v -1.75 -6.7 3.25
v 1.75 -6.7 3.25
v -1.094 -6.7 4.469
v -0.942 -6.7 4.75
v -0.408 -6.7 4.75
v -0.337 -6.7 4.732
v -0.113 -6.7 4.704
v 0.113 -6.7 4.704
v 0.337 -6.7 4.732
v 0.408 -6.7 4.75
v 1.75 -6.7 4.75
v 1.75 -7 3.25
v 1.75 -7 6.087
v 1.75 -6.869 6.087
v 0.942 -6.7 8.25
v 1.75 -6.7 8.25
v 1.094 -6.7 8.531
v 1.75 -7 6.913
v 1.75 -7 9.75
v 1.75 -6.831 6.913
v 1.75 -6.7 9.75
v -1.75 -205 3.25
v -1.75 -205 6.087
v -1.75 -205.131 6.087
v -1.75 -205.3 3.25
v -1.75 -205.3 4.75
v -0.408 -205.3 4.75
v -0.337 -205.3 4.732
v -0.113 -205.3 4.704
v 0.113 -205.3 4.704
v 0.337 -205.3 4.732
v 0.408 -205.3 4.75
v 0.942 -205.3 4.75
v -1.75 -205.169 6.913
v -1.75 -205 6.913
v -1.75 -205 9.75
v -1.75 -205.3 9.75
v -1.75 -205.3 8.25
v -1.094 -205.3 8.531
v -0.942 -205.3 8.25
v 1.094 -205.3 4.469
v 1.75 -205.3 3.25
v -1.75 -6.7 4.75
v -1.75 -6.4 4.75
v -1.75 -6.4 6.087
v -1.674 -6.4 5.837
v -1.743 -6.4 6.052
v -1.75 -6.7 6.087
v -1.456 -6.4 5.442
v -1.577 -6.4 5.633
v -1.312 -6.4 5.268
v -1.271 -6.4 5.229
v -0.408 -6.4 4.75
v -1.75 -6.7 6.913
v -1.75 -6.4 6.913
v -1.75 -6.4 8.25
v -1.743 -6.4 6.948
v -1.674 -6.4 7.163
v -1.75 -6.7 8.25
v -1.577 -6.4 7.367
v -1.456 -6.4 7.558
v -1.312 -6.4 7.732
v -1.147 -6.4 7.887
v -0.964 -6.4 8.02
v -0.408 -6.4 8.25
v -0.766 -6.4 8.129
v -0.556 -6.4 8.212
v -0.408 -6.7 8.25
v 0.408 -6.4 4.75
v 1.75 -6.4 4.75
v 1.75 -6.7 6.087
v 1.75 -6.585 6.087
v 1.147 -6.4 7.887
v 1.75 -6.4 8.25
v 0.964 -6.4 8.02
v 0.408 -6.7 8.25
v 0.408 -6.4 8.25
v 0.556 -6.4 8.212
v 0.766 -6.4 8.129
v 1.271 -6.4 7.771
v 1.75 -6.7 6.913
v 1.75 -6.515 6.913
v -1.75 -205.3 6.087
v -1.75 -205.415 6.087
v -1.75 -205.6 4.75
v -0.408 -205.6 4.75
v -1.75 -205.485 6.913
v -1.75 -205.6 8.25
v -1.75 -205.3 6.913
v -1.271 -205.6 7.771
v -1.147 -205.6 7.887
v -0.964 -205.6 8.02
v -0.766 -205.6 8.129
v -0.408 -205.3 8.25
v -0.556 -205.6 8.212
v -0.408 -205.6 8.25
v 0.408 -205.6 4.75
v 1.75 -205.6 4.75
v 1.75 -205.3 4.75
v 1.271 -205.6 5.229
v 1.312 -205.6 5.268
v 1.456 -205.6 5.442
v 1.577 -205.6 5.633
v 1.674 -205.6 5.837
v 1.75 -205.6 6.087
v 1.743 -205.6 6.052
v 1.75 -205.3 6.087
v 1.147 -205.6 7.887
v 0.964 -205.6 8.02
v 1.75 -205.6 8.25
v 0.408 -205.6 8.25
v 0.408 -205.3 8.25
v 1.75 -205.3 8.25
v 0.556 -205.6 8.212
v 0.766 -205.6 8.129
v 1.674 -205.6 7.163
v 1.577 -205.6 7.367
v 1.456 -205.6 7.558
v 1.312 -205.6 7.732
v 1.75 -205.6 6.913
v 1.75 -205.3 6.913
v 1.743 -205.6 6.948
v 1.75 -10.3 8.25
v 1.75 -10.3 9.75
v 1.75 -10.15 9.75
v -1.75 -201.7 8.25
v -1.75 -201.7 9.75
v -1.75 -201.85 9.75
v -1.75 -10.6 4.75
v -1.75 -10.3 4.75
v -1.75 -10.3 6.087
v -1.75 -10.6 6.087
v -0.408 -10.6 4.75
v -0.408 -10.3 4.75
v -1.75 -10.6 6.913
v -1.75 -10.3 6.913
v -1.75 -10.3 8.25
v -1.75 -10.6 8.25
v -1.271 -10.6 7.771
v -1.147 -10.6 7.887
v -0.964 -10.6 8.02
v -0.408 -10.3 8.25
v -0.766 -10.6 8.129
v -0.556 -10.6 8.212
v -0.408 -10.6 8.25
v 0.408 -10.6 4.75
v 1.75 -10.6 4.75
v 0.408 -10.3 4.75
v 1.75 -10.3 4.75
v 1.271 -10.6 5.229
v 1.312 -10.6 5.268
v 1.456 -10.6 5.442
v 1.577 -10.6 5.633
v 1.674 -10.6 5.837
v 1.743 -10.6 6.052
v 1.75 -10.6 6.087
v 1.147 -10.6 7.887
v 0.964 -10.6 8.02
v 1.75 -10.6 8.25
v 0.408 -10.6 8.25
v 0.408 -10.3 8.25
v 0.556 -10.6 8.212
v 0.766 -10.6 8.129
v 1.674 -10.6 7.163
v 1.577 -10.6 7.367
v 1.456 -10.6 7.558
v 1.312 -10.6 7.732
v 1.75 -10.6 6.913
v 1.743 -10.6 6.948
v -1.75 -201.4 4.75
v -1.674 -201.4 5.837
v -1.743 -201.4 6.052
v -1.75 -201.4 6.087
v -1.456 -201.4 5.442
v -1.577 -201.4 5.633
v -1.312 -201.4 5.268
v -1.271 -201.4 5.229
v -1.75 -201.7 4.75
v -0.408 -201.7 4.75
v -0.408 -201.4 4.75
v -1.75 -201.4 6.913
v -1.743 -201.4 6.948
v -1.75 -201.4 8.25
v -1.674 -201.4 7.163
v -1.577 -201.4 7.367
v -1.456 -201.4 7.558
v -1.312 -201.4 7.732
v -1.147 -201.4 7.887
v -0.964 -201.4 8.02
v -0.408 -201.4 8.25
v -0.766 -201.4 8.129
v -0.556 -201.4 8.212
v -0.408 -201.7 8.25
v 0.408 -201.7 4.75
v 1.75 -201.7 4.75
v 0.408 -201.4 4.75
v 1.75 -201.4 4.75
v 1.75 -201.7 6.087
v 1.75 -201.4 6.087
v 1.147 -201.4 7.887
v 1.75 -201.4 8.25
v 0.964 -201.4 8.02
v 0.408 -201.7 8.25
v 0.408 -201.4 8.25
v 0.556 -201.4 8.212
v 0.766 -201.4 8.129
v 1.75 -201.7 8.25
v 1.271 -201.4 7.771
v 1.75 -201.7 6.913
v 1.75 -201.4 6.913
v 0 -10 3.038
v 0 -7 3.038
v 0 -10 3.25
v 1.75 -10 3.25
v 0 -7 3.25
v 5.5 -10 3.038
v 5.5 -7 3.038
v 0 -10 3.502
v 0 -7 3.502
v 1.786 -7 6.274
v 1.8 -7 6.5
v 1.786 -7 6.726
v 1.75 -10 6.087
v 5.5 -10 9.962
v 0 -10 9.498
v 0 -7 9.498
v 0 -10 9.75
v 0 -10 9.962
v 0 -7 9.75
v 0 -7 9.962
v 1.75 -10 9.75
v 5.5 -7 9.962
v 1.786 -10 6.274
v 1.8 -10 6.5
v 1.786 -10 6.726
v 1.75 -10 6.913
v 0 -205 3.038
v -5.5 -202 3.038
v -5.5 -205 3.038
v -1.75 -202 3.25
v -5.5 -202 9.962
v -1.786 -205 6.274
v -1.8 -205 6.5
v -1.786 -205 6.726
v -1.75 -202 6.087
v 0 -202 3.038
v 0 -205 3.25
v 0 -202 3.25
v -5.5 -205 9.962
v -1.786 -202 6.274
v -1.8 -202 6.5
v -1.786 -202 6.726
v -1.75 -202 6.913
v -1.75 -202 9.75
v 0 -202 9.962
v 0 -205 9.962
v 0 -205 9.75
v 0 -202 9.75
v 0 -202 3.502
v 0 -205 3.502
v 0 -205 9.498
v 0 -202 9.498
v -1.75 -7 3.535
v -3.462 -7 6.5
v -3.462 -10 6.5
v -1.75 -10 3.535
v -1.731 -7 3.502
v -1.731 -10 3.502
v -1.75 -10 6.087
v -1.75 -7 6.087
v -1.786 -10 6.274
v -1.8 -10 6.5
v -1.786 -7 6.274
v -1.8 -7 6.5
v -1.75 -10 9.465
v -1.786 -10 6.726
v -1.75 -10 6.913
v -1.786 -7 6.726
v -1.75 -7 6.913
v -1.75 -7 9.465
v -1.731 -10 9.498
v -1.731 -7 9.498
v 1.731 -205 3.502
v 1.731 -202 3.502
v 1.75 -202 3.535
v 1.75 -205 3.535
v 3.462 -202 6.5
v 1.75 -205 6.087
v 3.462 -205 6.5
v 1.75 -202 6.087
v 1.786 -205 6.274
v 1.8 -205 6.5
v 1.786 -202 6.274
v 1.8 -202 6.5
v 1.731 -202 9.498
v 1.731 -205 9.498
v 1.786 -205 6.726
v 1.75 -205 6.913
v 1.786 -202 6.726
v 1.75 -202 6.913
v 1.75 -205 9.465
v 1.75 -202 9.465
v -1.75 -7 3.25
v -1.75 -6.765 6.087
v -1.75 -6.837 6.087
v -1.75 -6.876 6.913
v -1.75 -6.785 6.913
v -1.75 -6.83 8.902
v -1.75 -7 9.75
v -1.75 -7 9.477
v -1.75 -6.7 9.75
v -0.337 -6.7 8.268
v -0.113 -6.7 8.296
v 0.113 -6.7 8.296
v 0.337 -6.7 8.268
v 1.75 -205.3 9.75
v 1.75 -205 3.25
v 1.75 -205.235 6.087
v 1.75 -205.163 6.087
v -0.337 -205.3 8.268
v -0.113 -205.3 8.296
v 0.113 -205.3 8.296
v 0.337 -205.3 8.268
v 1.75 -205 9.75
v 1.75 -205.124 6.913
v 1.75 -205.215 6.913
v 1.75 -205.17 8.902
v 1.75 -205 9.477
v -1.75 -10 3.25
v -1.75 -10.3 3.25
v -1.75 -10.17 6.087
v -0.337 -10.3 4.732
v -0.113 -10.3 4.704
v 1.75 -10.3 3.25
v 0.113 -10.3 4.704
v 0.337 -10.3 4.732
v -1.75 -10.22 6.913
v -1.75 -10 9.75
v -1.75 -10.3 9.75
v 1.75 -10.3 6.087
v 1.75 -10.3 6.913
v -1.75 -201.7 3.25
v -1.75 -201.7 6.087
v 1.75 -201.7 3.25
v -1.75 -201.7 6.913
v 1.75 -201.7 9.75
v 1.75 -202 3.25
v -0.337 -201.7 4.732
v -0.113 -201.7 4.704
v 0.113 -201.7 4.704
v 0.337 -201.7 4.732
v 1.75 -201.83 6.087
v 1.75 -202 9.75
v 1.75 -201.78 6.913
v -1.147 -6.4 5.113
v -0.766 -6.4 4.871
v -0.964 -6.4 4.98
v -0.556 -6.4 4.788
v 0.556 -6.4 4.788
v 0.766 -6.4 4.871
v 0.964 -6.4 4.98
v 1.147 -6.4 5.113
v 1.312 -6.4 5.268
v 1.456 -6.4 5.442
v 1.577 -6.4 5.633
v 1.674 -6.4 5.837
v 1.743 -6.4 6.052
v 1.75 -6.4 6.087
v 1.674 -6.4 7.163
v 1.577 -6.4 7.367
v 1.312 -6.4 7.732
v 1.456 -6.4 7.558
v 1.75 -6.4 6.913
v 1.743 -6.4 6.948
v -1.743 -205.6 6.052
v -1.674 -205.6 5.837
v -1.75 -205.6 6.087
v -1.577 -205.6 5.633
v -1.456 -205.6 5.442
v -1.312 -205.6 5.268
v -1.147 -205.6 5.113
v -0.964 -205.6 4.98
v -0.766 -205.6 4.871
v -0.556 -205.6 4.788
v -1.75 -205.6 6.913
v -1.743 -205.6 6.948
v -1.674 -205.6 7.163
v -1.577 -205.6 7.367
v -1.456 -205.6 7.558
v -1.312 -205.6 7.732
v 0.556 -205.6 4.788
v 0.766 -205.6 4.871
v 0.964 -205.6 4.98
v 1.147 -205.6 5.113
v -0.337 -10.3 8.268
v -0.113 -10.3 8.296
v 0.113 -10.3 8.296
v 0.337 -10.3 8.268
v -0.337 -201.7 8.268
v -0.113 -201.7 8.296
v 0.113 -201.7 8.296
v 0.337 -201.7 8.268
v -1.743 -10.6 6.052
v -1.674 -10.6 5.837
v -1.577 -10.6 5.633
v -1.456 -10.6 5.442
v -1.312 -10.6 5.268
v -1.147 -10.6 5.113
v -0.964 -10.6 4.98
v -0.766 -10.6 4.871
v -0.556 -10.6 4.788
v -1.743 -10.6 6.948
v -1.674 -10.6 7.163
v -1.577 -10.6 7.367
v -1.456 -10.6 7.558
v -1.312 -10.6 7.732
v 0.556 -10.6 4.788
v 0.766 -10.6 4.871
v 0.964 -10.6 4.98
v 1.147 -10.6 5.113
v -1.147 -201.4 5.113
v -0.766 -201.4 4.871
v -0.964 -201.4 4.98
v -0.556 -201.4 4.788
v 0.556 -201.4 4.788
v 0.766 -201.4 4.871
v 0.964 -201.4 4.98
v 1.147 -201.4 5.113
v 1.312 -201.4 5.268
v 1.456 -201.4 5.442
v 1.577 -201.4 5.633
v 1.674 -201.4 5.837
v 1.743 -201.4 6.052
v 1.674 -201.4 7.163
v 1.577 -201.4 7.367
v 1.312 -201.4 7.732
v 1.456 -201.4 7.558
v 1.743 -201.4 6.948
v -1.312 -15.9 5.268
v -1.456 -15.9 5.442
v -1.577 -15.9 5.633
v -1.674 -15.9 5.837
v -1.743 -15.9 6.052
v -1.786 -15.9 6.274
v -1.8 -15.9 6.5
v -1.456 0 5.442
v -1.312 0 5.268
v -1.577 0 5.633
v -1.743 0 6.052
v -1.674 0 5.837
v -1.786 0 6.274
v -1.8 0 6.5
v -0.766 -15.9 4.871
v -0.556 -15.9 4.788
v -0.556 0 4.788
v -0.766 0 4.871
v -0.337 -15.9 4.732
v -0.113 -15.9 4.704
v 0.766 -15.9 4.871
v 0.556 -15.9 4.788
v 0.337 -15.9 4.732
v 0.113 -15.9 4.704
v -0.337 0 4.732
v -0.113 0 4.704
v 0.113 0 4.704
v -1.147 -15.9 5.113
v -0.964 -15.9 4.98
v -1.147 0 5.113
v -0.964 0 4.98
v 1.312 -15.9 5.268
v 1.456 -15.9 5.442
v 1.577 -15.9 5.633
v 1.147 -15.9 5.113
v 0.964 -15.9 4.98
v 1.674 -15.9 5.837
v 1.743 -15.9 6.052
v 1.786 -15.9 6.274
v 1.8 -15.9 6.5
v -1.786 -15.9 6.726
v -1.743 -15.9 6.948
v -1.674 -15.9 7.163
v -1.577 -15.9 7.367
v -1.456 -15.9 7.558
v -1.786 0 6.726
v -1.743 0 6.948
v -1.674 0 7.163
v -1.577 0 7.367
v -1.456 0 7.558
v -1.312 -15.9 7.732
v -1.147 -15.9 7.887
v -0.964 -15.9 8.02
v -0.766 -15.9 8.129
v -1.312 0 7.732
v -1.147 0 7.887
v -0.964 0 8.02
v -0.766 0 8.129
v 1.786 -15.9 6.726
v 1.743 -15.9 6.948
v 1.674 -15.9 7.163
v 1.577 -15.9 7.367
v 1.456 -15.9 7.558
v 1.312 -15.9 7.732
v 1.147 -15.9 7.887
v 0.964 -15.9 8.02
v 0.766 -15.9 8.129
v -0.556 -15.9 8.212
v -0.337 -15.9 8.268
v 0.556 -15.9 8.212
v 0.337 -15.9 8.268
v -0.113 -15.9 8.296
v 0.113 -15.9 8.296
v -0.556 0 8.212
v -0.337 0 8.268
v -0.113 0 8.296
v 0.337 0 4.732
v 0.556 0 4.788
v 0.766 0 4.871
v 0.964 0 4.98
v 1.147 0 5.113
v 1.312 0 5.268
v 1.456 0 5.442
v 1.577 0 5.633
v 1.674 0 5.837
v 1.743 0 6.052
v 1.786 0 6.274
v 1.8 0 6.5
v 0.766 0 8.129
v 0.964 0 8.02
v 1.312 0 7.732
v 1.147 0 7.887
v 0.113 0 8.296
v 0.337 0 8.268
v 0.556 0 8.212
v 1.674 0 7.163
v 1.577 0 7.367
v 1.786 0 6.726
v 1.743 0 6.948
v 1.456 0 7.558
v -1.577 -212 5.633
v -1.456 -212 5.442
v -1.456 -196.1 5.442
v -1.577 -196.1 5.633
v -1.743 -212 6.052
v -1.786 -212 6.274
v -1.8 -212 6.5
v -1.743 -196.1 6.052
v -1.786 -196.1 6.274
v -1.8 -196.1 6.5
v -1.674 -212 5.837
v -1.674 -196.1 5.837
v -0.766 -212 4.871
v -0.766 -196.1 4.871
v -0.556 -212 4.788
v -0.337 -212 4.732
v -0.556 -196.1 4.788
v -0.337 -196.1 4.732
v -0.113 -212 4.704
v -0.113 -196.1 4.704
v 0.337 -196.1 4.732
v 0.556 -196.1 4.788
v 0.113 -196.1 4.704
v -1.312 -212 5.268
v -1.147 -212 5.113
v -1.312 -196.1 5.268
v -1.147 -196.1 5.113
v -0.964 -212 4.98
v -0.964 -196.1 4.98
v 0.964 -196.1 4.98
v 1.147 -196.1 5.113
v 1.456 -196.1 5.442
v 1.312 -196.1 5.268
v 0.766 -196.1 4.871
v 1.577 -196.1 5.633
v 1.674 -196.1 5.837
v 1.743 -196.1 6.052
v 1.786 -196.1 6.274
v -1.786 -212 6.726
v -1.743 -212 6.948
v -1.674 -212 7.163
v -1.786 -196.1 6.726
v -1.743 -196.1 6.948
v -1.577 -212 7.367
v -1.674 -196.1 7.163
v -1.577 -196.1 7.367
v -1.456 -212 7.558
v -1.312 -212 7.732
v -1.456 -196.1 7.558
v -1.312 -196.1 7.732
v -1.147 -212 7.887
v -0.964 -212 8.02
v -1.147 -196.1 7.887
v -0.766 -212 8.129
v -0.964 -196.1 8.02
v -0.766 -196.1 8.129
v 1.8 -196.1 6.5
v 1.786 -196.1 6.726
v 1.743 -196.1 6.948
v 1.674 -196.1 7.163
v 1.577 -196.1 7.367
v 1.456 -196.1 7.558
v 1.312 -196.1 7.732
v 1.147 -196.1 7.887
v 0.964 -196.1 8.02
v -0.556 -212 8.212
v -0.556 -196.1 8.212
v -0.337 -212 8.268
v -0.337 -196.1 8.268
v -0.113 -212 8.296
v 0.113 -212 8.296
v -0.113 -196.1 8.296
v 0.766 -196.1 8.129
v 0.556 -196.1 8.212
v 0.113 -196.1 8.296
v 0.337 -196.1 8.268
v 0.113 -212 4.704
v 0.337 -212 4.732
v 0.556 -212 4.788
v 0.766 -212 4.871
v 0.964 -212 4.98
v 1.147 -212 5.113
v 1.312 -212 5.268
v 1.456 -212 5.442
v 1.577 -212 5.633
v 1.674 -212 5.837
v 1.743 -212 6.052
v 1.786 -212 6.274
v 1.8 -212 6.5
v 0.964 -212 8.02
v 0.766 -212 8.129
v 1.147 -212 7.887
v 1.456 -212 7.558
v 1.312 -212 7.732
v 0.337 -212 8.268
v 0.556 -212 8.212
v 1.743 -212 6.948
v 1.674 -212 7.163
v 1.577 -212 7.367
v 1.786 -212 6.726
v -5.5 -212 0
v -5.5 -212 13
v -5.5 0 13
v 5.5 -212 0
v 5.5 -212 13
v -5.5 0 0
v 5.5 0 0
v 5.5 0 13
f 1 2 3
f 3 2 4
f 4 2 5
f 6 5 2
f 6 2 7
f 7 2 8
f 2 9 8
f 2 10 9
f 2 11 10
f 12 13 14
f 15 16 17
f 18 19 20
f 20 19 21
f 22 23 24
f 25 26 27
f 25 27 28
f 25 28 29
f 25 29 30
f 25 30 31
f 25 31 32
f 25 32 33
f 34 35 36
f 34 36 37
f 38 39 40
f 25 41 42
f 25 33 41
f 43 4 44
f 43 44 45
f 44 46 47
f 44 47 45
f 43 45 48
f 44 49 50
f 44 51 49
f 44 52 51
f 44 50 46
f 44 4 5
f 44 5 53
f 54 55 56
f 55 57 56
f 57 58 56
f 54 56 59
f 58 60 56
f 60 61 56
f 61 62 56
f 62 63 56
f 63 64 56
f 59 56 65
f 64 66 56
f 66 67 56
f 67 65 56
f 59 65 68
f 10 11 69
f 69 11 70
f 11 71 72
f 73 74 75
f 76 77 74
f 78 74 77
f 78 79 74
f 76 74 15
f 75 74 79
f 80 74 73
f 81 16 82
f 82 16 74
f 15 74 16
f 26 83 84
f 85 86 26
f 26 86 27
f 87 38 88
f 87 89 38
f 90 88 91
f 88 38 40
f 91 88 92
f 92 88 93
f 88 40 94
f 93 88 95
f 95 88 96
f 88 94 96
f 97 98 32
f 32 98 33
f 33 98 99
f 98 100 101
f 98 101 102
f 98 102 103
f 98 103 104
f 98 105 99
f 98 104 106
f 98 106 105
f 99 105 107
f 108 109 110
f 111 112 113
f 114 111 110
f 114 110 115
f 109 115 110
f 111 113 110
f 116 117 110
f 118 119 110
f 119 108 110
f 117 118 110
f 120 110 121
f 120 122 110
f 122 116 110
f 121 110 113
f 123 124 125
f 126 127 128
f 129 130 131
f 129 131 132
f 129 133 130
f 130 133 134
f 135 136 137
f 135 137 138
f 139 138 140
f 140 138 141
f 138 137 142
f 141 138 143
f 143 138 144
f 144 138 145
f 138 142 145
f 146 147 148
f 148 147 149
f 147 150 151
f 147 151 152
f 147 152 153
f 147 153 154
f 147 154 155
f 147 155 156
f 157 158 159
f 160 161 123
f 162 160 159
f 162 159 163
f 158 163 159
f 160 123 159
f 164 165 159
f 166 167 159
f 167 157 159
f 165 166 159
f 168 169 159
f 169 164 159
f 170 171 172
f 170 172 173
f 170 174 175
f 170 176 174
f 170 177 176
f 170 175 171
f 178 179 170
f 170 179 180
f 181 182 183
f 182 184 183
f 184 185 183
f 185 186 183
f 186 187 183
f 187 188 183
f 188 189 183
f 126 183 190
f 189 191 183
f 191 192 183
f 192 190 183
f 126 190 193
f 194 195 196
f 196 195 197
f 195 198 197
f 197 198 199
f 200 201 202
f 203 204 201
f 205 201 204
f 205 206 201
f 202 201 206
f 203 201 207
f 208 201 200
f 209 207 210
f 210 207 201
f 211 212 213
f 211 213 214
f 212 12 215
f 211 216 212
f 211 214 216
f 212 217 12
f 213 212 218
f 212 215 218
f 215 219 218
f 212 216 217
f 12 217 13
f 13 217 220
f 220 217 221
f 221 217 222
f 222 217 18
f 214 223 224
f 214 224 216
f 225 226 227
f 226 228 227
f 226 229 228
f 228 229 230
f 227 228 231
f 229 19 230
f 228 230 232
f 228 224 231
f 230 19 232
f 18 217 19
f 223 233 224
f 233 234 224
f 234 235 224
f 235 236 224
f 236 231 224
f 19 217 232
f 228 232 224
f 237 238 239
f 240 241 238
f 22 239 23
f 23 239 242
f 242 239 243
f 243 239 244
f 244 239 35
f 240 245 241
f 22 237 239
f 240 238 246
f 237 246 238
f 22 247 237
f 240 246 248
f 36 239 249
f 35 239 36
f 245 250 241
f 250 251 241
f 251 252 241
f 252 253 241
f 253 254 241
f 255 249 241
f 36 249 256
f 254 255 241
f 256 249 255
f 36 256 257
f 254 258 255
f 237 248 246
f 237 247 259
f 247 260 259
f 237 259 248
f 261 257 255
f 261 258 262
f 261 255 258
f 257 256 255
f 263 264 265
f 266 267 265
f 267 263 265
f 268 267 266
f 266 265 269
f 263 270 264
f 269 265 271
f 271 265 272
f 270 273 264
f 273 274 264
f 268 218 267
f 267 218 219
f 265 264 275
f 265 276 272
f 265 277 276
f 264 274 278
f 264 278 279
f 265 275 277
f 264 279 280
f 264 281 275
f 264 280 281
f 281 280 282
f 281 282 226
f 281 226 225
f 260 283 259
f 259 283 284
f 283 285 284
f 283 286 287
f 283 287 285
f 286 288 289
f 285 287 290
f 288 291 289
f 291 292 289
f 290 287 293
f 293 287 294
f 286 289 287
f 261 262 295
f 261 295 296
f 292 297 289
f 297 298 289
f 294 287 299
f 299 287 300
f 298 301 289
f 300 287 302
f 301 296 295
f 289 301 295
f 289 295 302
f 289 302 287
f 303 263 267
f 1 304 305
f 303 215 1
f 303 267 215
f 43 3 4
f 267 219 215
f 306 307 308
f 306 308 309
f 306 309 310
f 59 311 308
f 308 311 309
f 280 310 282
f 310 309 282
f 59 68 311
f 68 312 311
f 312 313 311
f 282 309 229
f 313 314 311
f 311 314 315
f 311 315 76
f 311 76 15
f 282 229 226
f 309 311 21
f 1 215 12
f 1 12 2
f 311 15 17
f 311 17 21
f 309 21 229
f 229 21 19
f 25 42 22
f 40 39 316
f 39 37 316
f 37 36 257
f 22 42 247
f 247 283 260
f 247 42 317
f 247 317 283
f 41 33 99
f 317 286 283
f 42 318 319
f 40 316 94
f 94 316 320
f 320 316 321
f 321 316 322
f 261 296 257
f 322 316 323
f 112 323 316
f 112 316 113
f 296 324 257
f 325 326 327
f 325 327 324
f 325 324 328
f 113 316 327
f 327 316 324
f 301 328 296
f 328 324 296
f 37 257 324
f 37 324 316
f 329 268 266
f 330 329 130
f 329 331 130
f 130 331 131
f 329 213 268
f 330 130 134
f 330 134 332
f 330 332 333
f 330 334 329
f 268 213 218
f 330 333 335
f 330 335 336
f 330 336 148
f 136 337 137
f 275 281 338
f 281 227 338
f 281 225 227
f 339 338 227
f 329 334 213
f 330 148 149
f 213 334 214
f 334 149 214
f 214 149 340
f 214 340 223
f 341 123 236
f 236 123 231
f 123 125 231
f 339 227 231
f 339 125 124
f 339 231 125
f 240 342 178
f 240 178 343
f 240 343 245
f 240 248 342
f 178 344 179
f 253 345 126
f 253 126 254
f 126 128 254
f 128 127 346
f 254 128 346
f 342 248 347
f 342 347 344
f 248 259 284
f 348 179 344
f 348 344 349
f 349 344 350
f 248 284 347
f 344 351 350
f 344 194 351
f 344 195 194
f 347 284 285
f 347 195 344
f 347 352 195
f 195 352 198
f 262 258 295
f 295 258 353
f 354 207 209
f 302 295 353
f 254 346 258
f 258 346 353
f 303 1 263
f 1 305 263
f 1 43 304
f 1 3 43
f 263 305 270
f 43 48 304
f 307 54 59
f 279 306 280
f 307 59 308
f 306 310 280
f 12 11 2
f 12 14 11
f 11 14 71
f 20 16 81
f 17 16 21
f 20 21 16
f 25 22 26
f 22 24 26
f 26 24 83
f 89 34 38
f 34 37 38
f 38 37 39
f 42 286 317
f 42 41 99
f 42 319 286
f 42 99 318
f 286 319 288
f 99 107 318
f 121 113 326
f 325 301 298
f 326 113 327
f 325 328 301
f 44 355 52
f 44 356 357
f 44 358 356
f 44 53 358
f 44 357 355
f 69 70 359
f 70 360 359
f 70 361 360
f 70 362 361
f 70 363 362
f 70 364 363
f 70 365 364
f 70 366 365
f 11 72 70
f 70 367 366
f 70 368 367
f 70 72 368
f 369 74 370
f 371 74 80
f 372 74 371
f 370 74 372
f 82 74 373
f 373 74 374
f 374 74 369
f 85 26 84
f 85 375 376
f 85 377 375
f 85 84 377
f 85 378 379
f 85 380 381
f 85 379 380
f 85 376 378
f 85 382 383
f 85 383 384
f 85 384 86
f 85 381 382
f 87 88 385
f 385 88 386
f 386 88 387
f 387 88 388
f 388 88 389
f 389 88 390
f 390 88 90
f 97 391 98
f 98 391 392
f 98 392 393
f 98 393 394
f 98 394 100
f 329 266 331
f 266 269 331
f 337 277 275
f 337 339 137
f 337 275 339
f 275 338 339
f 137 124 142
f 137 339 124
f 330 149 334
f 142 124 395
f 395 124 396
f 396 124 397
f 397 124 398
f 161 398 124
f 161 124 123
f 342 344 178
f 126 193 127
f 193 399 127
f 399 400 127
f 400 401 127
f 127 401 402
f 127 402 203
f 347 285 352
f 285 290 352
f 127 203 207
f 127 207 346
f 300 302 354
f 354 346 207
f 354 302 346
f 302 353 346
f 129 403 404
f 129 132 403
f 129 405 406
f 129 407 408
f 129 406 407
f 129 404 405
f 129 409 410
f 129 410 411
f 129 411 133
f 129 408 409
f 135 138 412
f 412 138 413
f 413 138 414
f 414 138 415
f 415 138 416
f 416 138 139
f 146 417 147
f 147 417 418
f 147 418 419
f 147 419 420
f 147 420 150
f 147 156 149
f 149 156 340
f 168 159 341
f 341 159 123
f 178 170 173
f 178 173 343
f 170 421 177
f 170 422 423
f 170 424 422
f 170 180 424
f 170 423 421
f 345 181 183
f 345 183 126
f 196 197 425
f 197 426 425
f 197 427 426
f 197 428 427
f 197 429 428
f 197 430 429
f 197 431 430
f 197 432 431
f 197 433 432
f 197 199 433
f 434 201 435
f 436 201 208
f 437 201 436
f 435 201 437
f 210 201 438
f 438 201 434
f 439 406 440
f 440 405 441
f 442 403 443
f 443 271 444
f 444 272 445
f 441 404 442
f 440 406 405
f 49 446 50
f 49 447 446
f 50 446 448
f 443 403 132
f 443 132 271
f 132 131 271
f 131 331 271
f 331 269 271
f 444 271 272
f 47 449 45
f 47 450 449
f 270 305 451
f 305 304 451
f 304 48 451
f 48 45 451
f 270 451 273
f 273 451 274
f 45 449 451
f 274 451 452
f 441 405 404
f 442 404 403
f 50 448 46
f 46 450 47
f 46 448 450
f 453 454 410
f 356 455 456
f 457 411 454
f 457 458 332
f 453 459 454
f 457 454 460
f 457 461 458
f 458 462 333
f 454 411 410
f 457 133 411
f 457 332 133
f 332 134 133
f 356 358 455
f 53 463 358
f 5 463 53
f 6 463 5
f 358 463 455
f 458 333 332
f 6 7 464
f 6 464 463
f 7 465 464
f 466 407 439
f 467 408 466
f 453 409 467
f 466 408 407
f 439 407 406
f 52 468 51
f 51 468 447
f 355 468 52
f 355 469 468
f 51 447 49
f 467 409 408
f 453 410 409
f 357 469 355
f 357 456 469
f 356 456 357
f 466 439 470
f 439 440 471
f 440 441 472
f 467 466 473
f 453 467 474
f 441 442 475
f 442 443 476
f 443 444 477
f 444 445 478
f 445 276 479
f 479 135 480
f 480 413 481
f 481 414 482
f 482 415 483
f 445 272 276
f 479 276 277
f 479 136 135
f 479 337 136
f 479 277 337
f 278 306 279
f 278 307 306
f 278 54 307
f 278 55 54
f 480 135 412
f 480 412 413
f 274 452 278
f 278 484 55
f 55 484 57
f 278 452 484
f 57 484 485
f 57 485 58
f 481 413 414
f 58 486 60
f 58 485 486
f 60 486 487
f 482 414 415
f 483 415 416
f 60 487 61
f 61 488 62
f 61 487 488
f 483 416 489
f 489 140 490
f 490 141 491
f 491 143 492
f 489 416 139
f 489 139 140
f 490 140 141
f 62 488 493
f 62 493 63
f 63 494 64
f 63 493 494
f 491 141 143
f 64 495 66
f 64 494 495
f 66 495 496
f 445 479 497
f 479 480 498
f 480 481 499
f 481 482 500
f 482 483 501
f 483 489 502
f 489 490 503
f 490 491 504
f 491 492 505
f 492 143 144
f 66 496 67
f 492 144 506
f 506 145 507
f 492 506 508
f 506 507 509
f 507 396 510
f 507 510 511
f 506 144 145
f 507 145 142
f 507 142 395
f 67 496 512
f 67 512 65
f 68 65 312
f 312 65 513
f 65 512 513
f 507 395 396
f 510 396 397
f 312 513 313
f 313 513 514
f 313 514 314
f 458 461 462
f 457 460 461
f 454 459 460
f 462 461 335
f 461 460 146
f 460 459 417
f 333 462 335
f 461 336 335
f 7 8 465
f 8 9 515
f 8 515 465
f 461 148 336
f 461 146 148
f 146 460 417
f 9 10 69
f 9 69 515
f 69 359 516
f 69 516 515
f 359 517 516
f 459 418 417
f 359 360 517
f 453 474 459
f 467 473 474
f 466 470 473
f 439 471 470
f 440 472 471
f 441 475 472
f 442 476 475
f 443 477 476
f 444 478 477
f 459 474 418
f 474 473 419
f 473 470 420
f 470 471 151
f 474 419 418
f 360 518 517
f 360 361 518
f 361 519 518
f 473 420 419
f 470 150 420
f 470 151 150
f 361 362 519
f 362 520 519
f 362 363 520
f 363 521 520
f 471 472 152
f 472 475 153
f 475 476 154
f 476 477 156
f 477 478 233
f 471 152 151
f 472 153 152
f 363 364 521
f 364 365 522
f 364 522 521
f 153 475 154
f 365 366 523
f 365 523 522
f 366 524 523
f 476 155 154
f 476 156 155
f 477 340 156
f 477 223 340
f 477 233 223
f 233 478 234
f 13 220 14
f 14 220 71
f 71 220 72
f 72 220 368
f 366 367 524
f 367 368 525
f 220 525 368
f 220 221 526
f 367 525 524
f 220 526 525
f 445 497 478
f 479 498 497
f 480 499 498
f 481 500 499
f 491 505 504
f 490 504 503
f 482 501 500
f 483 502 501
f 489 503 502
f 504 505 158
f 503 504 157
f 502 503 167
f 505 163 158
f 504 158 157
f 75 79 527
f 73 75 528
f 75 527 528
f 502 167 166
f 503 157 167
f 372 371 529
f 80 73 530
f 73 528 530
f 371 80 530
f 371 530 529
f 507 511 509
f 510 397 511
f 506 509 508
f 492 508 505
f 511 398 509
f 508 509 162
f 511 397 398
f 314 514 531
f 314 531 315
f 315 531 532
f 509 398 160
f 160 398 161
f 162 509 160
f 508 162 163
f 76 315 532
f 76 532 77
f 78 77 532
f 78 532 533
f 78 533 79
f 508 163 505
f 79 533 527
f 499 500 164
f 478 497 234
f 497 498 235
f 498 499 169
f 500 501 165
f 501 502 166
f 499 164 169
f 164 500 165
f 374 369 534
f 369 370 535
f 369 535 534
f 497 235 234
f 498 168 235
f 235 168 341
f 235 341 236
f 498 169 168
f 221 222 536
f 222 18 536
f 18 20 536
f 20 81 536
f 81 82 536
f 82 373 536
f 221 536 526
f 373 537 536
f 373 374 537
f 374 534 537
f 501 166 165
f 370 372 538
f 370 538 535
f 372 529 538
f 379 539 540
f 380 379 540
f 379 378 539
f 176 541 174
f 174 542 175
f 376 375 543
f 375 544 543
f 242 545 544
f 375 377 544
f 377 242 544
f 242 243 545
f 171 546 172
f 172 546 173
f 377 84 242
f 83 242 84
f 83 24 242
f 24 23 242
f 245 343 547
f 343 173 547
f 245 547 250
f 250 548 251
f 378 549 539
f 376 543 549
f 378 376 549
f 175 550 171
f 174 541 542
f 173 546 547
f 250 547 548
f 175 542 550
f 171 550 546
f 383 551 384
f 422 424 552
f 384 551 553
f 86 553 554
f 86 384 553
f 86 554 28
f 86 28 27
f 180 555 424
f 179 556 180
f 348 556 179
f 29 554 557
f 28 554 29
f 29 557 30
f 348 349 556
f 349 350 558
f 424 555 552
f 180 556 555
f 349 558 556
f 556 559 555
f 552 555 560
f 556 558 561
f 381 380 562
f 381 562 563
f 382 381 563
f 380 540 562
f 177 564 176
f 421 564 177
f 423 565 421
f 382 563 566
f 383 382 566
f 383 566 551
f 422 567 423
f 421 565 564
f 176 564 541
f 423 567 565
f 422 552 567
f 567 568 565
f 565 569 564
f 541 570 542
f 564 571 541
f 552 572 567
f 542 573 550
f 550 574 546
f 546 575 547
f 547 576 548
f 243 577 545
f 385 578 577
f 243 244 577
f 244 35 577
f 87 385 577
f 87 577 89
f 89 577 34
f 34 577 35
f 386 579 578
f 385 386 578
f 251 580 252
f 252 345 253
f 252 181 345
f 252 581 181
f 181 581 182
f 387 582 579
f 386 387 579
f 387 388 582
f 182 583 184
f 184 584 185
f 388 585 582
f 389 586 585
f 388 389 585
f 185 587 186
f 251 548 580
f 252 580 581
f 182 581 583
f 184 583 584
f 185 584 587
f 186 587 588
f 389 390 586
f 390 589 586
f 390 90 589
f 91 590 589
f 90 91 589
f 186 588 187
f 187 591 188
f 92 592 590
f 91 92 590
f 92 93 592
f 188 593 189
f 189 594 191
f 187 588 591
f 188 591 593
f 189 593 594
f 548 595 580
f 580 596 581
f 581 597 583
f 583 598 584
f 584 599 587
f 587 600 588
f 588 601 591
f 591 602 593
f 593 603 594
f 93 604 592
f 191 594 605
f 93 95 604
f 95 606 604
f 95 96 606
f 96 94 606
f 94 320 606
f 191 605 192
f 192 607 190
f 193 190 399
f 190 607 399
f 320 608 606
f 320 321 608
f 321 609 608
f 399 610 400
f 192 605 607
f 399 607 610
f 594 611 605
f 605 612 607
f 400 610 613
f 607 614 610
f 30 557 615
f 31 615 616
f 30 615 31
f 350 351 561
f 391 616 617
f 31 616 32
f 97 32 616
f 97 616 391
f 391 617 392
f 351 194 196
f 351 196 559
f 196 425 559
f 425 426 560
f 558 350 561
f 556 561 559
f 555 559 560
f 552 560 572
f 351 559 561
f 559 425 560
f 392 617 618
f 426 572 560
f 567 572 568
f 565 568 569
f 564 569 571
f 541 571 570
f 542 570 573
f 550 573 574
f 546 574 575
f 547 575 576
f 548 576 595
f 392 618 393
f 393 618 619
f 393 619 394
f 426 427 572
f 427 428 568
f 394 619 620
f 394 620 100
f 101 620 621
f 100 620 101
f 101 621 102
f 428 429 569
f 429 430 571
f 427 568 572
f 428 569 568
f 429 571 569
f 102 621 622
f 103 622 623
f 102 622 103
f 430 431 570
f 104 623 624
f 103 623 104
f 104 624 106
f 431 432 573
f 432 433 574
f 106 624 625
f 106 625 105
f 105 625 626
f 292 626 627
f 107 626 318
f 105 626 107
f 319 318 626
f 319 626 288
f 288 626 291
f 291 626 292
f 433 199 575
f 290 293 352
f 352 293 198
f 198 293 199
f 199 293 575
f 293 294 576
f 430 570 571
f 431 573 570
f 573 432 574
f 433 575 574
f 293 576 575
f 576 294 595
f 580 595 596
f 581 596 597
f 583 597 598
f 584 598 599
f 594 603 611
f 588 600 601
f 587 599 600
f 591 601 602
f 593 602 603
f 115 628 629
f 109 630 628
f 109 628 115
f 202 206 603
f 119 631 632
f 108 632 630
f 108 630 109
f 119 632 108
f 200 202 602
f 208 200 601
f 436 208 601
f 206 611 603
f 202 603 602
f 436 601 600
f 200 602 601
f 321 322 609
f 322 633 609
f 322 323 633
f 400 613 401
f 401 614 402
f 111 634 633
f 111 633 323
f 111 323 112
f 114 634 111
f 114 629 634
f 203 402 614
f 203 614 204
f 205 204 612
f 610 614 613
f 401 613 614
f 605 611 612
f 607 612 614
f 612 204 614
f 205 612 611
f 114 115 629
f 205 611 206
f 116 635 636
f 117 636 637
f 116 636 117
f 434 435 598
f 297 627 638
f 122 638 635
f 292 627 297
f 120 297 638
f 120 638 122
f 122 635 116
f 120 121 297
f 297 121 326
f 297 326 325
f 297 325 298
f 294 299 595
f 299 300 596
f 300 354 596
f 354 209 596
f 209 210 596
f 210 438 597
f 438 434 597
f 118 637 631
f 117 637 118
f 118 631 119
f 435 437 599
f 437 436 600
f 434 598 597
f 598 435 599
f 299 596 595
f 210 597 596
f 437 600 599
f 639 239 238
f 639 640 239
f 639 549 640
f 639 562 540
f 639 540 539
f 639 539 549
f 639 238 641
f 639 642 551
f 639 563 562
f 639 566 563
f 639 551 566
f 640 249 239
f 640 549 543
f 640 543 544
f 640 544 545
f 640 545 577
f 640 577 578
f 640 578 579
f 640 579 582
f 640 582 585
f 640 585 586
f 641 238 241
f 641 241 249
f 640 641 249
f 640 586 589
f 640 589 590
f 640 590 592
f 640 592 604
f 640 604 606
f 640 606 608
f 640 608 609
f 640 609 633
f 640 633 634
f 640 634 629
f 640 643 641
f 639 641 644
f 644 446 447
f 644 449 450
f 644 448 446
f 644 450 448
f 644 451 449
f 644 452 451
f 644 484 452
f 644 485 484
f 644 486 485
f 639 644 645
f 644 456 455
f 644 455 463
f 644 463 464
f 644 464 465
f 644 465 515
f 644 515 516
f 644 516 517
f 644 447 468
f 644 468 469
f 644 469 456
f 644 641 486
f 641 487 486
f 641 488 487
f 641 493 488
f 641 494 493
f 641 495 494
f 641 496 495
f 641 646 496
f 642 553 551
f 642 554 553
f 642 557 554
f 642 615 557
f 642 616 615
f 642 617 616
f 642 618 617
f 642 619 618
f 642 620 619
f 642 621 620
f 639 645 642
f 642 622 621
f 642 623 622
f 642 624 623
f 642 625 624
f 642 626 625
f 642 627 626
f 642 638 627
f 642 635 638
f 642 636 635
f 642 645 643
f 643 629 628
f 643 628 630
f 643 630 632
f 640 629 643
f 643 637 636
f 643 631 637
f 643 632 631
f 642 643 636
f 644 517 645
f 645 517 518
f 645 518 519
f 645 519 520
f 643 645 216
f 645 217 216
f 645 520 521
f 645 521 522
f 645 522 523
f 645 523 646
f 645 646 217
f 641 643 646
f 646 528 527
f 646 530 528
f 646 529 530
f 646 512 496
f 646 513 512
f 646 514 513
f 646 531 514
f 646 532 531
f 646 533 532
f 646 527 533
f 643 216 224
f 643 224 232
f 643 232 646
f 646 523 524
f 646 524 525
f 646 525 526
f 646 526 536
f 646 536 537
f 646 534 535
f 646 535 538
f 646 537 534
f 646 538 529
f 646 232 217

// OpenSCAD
$fn = 50;

difference() {
	union() {
		translate(v = [0, 0, 0]) {
			rotate(a = [0, 0, 0]) {
				difference() {
					union() {
						translate(v = [-5.5, -212.0, 0]) {
							cube(size = [11.0, 212.0, 13.0]);
						}
					}
					union() {
						translate(v = [0, 0, 0]) {
							rotate(a = [0, 0, 0]) {
								difference() {
									union() {
										translate(v = [0, -7.0, 6.5]) {
											rotate(a = [90, 0, 0]) {
												difference() {
													union() {
														translate(v = [-1.75, -3.25, -0.3]) {
															cube(size = [3.5, 6.5, 0.3]);
														}
														translate(v = [-1.75, -1.75, -0.6]) {
															cube(size = [3.5, 3.5, 0.3]);
														}
														translate(v = [-1.75, -3.25, 3]) {
															cube(size = [3.5, 6.5, 0.3]);
														}
														translate(v = [-1.75, -1.75, 3.3]) {
															cube(size = [3.5, 3.5, 0.3]);
														}
														translate(v = [0.0, -3.4619999999999997, 0]) {
															cube(size = [20, 6.9239999999999995, 3]);
														}
														linear_extrude(height = 3) {
															polygon(points = [[3.4619999999999997, 0.0], [1.7310000000000003, 2.9981799479017264], [-1.7309999999999992, 2.9981799479017264], [-3.4619999999999997, 4.2397272186481365e-16], [-1.7310000000000014, -2.998179947901726], [1.7309999999999977, -2.9981799479017277]]);
														}
														translate(v = [-1.75, -3.25, -0.3]) {
															cube(size = [3.5, 6.5, 0.3]);
														}
														translate(v = [-1.75, -1.75, -0.6]) {
															cube(size = [3.5, 3.5, 0.3]);
														}
														translate(v = [-1.75, -3.25, 3]) {
															cube(size = [3.5, 6.5, 0.3]);
														}
														translate(v = [-1.75, -1.75, 3.3]) {
															cube(size = [3.5, 3.5, 0.3]);
														}
														translate(v = [-1.75, -3.25, -0.3]) {
															cube(size = [3.5, 6.5, 0.3]);
														}
														translate(v = [-1.75, -1.75, -0.6]) {
															cube(size = [3.5, 3.5, 0.3]);
														}
														translate(v = [-1.75, -3.25, 3]) {
															cube(size = [3.5, 6.5, 0.3]);
														}
														translate(v = [-1.75, -1.75, 3.3]) {
															cube(size = [3.5, 3.5, 0.3]);
														}
													}
													union();
												}
											}
										}
										translate(v = [0, 0.1, 6.5]) {
											rotate(a = [90, 0, 0]) {
												cylinder(h = 16, r = 1.8);
											}
										}
									}
									union();
								}
							}
						}
						translate(v = [0, -212.0, 0]) {
							rotate(a = [0, 0, 180]) {
								difference() {
									union() {
										translate(v = [0, -7.0, 6.5]) {
											rotate(a = [90, 0, 0]) {
												difference() {
													union() {
														translate(v = [-1.75, -3.25, -0.3]) {
															cube(size = [3.5, 6.5, 0.3]);
														}
														translate(v = [-1.75, -1.75, -0.6]) {
															cube(size = [3.5, 3.5, 0.3]);
														}
														translate(v = [-1.75, -3.25, 3]) {
															cube(size = [3.5, 6.5, 0.3]);
														}
														translate(v = [-1.75, -1.75, 3.3]) {
															cube(size = [3.5, 3.5, 0.3]);
														}
														translate(v = [0.0, -3.4619999999999997, 0]) {
															cube(size = [20, 6.9239999999999995, 3]);
														}
														linear_extrude(height = 3) {
															polygon(points = [[3.4619999999999997, 0.0], [1.7310000000000003, 2.9981799479017264], [-1.7309999999999992, 2.9981799479017264], [-3.4619999999999997, 4.2397272186481365e-16], [-1.7310000000000014, -2.998179947901726], [1.7309999999999977, -2.9981799479017277]]);
														}
														translate(v = [-1.75, -3.25, -0.3]) {
															cube(size = [3.5, 6.5, 0.3]);
														}
														translate(v = [-1.75, -1.75, -0.6]) {
															cube(size = [3.5, 3.5, 0.3]);
														}
														translate(v = [-1.75, -3.25, 3]) {
															cube(size = [3.5, 6.5, 0.3]);
														}
														translate(v = [-1.75, -1.75, 3.3]) {
															cube(size = [3.5, 3.5, 0.3]);
														}
														translate(v = [-1.75, -3.25, -0.3]) {
															cube(size = [3.5, 6.5, 0.3]);
														}
														translate(v = [-1.75, -1.75, -0.6]) {
															cube(size = [3.5, 3.5, 0.3]);
														}
														translate(v = [-1.75, -3.25, 3]) {
															cube(size = [3.5, 6.5, 0.3]);
														}
														translate(v = [-1.75, -1.75, 3.3]) {
															cube(size = [3.5, 3.5, 0.3]);
														}
													}
													union();
												}
											}
										}
										translate(v = [0, 0.1, 6.5]) {
											rotate(a = [90, 0, 0]) {
												cylinder(h = 16, r = 1.8);
											}
										}
									}
									union();
								}
							}
						}
					}
				}
			}
		}
	}
	union();
}
